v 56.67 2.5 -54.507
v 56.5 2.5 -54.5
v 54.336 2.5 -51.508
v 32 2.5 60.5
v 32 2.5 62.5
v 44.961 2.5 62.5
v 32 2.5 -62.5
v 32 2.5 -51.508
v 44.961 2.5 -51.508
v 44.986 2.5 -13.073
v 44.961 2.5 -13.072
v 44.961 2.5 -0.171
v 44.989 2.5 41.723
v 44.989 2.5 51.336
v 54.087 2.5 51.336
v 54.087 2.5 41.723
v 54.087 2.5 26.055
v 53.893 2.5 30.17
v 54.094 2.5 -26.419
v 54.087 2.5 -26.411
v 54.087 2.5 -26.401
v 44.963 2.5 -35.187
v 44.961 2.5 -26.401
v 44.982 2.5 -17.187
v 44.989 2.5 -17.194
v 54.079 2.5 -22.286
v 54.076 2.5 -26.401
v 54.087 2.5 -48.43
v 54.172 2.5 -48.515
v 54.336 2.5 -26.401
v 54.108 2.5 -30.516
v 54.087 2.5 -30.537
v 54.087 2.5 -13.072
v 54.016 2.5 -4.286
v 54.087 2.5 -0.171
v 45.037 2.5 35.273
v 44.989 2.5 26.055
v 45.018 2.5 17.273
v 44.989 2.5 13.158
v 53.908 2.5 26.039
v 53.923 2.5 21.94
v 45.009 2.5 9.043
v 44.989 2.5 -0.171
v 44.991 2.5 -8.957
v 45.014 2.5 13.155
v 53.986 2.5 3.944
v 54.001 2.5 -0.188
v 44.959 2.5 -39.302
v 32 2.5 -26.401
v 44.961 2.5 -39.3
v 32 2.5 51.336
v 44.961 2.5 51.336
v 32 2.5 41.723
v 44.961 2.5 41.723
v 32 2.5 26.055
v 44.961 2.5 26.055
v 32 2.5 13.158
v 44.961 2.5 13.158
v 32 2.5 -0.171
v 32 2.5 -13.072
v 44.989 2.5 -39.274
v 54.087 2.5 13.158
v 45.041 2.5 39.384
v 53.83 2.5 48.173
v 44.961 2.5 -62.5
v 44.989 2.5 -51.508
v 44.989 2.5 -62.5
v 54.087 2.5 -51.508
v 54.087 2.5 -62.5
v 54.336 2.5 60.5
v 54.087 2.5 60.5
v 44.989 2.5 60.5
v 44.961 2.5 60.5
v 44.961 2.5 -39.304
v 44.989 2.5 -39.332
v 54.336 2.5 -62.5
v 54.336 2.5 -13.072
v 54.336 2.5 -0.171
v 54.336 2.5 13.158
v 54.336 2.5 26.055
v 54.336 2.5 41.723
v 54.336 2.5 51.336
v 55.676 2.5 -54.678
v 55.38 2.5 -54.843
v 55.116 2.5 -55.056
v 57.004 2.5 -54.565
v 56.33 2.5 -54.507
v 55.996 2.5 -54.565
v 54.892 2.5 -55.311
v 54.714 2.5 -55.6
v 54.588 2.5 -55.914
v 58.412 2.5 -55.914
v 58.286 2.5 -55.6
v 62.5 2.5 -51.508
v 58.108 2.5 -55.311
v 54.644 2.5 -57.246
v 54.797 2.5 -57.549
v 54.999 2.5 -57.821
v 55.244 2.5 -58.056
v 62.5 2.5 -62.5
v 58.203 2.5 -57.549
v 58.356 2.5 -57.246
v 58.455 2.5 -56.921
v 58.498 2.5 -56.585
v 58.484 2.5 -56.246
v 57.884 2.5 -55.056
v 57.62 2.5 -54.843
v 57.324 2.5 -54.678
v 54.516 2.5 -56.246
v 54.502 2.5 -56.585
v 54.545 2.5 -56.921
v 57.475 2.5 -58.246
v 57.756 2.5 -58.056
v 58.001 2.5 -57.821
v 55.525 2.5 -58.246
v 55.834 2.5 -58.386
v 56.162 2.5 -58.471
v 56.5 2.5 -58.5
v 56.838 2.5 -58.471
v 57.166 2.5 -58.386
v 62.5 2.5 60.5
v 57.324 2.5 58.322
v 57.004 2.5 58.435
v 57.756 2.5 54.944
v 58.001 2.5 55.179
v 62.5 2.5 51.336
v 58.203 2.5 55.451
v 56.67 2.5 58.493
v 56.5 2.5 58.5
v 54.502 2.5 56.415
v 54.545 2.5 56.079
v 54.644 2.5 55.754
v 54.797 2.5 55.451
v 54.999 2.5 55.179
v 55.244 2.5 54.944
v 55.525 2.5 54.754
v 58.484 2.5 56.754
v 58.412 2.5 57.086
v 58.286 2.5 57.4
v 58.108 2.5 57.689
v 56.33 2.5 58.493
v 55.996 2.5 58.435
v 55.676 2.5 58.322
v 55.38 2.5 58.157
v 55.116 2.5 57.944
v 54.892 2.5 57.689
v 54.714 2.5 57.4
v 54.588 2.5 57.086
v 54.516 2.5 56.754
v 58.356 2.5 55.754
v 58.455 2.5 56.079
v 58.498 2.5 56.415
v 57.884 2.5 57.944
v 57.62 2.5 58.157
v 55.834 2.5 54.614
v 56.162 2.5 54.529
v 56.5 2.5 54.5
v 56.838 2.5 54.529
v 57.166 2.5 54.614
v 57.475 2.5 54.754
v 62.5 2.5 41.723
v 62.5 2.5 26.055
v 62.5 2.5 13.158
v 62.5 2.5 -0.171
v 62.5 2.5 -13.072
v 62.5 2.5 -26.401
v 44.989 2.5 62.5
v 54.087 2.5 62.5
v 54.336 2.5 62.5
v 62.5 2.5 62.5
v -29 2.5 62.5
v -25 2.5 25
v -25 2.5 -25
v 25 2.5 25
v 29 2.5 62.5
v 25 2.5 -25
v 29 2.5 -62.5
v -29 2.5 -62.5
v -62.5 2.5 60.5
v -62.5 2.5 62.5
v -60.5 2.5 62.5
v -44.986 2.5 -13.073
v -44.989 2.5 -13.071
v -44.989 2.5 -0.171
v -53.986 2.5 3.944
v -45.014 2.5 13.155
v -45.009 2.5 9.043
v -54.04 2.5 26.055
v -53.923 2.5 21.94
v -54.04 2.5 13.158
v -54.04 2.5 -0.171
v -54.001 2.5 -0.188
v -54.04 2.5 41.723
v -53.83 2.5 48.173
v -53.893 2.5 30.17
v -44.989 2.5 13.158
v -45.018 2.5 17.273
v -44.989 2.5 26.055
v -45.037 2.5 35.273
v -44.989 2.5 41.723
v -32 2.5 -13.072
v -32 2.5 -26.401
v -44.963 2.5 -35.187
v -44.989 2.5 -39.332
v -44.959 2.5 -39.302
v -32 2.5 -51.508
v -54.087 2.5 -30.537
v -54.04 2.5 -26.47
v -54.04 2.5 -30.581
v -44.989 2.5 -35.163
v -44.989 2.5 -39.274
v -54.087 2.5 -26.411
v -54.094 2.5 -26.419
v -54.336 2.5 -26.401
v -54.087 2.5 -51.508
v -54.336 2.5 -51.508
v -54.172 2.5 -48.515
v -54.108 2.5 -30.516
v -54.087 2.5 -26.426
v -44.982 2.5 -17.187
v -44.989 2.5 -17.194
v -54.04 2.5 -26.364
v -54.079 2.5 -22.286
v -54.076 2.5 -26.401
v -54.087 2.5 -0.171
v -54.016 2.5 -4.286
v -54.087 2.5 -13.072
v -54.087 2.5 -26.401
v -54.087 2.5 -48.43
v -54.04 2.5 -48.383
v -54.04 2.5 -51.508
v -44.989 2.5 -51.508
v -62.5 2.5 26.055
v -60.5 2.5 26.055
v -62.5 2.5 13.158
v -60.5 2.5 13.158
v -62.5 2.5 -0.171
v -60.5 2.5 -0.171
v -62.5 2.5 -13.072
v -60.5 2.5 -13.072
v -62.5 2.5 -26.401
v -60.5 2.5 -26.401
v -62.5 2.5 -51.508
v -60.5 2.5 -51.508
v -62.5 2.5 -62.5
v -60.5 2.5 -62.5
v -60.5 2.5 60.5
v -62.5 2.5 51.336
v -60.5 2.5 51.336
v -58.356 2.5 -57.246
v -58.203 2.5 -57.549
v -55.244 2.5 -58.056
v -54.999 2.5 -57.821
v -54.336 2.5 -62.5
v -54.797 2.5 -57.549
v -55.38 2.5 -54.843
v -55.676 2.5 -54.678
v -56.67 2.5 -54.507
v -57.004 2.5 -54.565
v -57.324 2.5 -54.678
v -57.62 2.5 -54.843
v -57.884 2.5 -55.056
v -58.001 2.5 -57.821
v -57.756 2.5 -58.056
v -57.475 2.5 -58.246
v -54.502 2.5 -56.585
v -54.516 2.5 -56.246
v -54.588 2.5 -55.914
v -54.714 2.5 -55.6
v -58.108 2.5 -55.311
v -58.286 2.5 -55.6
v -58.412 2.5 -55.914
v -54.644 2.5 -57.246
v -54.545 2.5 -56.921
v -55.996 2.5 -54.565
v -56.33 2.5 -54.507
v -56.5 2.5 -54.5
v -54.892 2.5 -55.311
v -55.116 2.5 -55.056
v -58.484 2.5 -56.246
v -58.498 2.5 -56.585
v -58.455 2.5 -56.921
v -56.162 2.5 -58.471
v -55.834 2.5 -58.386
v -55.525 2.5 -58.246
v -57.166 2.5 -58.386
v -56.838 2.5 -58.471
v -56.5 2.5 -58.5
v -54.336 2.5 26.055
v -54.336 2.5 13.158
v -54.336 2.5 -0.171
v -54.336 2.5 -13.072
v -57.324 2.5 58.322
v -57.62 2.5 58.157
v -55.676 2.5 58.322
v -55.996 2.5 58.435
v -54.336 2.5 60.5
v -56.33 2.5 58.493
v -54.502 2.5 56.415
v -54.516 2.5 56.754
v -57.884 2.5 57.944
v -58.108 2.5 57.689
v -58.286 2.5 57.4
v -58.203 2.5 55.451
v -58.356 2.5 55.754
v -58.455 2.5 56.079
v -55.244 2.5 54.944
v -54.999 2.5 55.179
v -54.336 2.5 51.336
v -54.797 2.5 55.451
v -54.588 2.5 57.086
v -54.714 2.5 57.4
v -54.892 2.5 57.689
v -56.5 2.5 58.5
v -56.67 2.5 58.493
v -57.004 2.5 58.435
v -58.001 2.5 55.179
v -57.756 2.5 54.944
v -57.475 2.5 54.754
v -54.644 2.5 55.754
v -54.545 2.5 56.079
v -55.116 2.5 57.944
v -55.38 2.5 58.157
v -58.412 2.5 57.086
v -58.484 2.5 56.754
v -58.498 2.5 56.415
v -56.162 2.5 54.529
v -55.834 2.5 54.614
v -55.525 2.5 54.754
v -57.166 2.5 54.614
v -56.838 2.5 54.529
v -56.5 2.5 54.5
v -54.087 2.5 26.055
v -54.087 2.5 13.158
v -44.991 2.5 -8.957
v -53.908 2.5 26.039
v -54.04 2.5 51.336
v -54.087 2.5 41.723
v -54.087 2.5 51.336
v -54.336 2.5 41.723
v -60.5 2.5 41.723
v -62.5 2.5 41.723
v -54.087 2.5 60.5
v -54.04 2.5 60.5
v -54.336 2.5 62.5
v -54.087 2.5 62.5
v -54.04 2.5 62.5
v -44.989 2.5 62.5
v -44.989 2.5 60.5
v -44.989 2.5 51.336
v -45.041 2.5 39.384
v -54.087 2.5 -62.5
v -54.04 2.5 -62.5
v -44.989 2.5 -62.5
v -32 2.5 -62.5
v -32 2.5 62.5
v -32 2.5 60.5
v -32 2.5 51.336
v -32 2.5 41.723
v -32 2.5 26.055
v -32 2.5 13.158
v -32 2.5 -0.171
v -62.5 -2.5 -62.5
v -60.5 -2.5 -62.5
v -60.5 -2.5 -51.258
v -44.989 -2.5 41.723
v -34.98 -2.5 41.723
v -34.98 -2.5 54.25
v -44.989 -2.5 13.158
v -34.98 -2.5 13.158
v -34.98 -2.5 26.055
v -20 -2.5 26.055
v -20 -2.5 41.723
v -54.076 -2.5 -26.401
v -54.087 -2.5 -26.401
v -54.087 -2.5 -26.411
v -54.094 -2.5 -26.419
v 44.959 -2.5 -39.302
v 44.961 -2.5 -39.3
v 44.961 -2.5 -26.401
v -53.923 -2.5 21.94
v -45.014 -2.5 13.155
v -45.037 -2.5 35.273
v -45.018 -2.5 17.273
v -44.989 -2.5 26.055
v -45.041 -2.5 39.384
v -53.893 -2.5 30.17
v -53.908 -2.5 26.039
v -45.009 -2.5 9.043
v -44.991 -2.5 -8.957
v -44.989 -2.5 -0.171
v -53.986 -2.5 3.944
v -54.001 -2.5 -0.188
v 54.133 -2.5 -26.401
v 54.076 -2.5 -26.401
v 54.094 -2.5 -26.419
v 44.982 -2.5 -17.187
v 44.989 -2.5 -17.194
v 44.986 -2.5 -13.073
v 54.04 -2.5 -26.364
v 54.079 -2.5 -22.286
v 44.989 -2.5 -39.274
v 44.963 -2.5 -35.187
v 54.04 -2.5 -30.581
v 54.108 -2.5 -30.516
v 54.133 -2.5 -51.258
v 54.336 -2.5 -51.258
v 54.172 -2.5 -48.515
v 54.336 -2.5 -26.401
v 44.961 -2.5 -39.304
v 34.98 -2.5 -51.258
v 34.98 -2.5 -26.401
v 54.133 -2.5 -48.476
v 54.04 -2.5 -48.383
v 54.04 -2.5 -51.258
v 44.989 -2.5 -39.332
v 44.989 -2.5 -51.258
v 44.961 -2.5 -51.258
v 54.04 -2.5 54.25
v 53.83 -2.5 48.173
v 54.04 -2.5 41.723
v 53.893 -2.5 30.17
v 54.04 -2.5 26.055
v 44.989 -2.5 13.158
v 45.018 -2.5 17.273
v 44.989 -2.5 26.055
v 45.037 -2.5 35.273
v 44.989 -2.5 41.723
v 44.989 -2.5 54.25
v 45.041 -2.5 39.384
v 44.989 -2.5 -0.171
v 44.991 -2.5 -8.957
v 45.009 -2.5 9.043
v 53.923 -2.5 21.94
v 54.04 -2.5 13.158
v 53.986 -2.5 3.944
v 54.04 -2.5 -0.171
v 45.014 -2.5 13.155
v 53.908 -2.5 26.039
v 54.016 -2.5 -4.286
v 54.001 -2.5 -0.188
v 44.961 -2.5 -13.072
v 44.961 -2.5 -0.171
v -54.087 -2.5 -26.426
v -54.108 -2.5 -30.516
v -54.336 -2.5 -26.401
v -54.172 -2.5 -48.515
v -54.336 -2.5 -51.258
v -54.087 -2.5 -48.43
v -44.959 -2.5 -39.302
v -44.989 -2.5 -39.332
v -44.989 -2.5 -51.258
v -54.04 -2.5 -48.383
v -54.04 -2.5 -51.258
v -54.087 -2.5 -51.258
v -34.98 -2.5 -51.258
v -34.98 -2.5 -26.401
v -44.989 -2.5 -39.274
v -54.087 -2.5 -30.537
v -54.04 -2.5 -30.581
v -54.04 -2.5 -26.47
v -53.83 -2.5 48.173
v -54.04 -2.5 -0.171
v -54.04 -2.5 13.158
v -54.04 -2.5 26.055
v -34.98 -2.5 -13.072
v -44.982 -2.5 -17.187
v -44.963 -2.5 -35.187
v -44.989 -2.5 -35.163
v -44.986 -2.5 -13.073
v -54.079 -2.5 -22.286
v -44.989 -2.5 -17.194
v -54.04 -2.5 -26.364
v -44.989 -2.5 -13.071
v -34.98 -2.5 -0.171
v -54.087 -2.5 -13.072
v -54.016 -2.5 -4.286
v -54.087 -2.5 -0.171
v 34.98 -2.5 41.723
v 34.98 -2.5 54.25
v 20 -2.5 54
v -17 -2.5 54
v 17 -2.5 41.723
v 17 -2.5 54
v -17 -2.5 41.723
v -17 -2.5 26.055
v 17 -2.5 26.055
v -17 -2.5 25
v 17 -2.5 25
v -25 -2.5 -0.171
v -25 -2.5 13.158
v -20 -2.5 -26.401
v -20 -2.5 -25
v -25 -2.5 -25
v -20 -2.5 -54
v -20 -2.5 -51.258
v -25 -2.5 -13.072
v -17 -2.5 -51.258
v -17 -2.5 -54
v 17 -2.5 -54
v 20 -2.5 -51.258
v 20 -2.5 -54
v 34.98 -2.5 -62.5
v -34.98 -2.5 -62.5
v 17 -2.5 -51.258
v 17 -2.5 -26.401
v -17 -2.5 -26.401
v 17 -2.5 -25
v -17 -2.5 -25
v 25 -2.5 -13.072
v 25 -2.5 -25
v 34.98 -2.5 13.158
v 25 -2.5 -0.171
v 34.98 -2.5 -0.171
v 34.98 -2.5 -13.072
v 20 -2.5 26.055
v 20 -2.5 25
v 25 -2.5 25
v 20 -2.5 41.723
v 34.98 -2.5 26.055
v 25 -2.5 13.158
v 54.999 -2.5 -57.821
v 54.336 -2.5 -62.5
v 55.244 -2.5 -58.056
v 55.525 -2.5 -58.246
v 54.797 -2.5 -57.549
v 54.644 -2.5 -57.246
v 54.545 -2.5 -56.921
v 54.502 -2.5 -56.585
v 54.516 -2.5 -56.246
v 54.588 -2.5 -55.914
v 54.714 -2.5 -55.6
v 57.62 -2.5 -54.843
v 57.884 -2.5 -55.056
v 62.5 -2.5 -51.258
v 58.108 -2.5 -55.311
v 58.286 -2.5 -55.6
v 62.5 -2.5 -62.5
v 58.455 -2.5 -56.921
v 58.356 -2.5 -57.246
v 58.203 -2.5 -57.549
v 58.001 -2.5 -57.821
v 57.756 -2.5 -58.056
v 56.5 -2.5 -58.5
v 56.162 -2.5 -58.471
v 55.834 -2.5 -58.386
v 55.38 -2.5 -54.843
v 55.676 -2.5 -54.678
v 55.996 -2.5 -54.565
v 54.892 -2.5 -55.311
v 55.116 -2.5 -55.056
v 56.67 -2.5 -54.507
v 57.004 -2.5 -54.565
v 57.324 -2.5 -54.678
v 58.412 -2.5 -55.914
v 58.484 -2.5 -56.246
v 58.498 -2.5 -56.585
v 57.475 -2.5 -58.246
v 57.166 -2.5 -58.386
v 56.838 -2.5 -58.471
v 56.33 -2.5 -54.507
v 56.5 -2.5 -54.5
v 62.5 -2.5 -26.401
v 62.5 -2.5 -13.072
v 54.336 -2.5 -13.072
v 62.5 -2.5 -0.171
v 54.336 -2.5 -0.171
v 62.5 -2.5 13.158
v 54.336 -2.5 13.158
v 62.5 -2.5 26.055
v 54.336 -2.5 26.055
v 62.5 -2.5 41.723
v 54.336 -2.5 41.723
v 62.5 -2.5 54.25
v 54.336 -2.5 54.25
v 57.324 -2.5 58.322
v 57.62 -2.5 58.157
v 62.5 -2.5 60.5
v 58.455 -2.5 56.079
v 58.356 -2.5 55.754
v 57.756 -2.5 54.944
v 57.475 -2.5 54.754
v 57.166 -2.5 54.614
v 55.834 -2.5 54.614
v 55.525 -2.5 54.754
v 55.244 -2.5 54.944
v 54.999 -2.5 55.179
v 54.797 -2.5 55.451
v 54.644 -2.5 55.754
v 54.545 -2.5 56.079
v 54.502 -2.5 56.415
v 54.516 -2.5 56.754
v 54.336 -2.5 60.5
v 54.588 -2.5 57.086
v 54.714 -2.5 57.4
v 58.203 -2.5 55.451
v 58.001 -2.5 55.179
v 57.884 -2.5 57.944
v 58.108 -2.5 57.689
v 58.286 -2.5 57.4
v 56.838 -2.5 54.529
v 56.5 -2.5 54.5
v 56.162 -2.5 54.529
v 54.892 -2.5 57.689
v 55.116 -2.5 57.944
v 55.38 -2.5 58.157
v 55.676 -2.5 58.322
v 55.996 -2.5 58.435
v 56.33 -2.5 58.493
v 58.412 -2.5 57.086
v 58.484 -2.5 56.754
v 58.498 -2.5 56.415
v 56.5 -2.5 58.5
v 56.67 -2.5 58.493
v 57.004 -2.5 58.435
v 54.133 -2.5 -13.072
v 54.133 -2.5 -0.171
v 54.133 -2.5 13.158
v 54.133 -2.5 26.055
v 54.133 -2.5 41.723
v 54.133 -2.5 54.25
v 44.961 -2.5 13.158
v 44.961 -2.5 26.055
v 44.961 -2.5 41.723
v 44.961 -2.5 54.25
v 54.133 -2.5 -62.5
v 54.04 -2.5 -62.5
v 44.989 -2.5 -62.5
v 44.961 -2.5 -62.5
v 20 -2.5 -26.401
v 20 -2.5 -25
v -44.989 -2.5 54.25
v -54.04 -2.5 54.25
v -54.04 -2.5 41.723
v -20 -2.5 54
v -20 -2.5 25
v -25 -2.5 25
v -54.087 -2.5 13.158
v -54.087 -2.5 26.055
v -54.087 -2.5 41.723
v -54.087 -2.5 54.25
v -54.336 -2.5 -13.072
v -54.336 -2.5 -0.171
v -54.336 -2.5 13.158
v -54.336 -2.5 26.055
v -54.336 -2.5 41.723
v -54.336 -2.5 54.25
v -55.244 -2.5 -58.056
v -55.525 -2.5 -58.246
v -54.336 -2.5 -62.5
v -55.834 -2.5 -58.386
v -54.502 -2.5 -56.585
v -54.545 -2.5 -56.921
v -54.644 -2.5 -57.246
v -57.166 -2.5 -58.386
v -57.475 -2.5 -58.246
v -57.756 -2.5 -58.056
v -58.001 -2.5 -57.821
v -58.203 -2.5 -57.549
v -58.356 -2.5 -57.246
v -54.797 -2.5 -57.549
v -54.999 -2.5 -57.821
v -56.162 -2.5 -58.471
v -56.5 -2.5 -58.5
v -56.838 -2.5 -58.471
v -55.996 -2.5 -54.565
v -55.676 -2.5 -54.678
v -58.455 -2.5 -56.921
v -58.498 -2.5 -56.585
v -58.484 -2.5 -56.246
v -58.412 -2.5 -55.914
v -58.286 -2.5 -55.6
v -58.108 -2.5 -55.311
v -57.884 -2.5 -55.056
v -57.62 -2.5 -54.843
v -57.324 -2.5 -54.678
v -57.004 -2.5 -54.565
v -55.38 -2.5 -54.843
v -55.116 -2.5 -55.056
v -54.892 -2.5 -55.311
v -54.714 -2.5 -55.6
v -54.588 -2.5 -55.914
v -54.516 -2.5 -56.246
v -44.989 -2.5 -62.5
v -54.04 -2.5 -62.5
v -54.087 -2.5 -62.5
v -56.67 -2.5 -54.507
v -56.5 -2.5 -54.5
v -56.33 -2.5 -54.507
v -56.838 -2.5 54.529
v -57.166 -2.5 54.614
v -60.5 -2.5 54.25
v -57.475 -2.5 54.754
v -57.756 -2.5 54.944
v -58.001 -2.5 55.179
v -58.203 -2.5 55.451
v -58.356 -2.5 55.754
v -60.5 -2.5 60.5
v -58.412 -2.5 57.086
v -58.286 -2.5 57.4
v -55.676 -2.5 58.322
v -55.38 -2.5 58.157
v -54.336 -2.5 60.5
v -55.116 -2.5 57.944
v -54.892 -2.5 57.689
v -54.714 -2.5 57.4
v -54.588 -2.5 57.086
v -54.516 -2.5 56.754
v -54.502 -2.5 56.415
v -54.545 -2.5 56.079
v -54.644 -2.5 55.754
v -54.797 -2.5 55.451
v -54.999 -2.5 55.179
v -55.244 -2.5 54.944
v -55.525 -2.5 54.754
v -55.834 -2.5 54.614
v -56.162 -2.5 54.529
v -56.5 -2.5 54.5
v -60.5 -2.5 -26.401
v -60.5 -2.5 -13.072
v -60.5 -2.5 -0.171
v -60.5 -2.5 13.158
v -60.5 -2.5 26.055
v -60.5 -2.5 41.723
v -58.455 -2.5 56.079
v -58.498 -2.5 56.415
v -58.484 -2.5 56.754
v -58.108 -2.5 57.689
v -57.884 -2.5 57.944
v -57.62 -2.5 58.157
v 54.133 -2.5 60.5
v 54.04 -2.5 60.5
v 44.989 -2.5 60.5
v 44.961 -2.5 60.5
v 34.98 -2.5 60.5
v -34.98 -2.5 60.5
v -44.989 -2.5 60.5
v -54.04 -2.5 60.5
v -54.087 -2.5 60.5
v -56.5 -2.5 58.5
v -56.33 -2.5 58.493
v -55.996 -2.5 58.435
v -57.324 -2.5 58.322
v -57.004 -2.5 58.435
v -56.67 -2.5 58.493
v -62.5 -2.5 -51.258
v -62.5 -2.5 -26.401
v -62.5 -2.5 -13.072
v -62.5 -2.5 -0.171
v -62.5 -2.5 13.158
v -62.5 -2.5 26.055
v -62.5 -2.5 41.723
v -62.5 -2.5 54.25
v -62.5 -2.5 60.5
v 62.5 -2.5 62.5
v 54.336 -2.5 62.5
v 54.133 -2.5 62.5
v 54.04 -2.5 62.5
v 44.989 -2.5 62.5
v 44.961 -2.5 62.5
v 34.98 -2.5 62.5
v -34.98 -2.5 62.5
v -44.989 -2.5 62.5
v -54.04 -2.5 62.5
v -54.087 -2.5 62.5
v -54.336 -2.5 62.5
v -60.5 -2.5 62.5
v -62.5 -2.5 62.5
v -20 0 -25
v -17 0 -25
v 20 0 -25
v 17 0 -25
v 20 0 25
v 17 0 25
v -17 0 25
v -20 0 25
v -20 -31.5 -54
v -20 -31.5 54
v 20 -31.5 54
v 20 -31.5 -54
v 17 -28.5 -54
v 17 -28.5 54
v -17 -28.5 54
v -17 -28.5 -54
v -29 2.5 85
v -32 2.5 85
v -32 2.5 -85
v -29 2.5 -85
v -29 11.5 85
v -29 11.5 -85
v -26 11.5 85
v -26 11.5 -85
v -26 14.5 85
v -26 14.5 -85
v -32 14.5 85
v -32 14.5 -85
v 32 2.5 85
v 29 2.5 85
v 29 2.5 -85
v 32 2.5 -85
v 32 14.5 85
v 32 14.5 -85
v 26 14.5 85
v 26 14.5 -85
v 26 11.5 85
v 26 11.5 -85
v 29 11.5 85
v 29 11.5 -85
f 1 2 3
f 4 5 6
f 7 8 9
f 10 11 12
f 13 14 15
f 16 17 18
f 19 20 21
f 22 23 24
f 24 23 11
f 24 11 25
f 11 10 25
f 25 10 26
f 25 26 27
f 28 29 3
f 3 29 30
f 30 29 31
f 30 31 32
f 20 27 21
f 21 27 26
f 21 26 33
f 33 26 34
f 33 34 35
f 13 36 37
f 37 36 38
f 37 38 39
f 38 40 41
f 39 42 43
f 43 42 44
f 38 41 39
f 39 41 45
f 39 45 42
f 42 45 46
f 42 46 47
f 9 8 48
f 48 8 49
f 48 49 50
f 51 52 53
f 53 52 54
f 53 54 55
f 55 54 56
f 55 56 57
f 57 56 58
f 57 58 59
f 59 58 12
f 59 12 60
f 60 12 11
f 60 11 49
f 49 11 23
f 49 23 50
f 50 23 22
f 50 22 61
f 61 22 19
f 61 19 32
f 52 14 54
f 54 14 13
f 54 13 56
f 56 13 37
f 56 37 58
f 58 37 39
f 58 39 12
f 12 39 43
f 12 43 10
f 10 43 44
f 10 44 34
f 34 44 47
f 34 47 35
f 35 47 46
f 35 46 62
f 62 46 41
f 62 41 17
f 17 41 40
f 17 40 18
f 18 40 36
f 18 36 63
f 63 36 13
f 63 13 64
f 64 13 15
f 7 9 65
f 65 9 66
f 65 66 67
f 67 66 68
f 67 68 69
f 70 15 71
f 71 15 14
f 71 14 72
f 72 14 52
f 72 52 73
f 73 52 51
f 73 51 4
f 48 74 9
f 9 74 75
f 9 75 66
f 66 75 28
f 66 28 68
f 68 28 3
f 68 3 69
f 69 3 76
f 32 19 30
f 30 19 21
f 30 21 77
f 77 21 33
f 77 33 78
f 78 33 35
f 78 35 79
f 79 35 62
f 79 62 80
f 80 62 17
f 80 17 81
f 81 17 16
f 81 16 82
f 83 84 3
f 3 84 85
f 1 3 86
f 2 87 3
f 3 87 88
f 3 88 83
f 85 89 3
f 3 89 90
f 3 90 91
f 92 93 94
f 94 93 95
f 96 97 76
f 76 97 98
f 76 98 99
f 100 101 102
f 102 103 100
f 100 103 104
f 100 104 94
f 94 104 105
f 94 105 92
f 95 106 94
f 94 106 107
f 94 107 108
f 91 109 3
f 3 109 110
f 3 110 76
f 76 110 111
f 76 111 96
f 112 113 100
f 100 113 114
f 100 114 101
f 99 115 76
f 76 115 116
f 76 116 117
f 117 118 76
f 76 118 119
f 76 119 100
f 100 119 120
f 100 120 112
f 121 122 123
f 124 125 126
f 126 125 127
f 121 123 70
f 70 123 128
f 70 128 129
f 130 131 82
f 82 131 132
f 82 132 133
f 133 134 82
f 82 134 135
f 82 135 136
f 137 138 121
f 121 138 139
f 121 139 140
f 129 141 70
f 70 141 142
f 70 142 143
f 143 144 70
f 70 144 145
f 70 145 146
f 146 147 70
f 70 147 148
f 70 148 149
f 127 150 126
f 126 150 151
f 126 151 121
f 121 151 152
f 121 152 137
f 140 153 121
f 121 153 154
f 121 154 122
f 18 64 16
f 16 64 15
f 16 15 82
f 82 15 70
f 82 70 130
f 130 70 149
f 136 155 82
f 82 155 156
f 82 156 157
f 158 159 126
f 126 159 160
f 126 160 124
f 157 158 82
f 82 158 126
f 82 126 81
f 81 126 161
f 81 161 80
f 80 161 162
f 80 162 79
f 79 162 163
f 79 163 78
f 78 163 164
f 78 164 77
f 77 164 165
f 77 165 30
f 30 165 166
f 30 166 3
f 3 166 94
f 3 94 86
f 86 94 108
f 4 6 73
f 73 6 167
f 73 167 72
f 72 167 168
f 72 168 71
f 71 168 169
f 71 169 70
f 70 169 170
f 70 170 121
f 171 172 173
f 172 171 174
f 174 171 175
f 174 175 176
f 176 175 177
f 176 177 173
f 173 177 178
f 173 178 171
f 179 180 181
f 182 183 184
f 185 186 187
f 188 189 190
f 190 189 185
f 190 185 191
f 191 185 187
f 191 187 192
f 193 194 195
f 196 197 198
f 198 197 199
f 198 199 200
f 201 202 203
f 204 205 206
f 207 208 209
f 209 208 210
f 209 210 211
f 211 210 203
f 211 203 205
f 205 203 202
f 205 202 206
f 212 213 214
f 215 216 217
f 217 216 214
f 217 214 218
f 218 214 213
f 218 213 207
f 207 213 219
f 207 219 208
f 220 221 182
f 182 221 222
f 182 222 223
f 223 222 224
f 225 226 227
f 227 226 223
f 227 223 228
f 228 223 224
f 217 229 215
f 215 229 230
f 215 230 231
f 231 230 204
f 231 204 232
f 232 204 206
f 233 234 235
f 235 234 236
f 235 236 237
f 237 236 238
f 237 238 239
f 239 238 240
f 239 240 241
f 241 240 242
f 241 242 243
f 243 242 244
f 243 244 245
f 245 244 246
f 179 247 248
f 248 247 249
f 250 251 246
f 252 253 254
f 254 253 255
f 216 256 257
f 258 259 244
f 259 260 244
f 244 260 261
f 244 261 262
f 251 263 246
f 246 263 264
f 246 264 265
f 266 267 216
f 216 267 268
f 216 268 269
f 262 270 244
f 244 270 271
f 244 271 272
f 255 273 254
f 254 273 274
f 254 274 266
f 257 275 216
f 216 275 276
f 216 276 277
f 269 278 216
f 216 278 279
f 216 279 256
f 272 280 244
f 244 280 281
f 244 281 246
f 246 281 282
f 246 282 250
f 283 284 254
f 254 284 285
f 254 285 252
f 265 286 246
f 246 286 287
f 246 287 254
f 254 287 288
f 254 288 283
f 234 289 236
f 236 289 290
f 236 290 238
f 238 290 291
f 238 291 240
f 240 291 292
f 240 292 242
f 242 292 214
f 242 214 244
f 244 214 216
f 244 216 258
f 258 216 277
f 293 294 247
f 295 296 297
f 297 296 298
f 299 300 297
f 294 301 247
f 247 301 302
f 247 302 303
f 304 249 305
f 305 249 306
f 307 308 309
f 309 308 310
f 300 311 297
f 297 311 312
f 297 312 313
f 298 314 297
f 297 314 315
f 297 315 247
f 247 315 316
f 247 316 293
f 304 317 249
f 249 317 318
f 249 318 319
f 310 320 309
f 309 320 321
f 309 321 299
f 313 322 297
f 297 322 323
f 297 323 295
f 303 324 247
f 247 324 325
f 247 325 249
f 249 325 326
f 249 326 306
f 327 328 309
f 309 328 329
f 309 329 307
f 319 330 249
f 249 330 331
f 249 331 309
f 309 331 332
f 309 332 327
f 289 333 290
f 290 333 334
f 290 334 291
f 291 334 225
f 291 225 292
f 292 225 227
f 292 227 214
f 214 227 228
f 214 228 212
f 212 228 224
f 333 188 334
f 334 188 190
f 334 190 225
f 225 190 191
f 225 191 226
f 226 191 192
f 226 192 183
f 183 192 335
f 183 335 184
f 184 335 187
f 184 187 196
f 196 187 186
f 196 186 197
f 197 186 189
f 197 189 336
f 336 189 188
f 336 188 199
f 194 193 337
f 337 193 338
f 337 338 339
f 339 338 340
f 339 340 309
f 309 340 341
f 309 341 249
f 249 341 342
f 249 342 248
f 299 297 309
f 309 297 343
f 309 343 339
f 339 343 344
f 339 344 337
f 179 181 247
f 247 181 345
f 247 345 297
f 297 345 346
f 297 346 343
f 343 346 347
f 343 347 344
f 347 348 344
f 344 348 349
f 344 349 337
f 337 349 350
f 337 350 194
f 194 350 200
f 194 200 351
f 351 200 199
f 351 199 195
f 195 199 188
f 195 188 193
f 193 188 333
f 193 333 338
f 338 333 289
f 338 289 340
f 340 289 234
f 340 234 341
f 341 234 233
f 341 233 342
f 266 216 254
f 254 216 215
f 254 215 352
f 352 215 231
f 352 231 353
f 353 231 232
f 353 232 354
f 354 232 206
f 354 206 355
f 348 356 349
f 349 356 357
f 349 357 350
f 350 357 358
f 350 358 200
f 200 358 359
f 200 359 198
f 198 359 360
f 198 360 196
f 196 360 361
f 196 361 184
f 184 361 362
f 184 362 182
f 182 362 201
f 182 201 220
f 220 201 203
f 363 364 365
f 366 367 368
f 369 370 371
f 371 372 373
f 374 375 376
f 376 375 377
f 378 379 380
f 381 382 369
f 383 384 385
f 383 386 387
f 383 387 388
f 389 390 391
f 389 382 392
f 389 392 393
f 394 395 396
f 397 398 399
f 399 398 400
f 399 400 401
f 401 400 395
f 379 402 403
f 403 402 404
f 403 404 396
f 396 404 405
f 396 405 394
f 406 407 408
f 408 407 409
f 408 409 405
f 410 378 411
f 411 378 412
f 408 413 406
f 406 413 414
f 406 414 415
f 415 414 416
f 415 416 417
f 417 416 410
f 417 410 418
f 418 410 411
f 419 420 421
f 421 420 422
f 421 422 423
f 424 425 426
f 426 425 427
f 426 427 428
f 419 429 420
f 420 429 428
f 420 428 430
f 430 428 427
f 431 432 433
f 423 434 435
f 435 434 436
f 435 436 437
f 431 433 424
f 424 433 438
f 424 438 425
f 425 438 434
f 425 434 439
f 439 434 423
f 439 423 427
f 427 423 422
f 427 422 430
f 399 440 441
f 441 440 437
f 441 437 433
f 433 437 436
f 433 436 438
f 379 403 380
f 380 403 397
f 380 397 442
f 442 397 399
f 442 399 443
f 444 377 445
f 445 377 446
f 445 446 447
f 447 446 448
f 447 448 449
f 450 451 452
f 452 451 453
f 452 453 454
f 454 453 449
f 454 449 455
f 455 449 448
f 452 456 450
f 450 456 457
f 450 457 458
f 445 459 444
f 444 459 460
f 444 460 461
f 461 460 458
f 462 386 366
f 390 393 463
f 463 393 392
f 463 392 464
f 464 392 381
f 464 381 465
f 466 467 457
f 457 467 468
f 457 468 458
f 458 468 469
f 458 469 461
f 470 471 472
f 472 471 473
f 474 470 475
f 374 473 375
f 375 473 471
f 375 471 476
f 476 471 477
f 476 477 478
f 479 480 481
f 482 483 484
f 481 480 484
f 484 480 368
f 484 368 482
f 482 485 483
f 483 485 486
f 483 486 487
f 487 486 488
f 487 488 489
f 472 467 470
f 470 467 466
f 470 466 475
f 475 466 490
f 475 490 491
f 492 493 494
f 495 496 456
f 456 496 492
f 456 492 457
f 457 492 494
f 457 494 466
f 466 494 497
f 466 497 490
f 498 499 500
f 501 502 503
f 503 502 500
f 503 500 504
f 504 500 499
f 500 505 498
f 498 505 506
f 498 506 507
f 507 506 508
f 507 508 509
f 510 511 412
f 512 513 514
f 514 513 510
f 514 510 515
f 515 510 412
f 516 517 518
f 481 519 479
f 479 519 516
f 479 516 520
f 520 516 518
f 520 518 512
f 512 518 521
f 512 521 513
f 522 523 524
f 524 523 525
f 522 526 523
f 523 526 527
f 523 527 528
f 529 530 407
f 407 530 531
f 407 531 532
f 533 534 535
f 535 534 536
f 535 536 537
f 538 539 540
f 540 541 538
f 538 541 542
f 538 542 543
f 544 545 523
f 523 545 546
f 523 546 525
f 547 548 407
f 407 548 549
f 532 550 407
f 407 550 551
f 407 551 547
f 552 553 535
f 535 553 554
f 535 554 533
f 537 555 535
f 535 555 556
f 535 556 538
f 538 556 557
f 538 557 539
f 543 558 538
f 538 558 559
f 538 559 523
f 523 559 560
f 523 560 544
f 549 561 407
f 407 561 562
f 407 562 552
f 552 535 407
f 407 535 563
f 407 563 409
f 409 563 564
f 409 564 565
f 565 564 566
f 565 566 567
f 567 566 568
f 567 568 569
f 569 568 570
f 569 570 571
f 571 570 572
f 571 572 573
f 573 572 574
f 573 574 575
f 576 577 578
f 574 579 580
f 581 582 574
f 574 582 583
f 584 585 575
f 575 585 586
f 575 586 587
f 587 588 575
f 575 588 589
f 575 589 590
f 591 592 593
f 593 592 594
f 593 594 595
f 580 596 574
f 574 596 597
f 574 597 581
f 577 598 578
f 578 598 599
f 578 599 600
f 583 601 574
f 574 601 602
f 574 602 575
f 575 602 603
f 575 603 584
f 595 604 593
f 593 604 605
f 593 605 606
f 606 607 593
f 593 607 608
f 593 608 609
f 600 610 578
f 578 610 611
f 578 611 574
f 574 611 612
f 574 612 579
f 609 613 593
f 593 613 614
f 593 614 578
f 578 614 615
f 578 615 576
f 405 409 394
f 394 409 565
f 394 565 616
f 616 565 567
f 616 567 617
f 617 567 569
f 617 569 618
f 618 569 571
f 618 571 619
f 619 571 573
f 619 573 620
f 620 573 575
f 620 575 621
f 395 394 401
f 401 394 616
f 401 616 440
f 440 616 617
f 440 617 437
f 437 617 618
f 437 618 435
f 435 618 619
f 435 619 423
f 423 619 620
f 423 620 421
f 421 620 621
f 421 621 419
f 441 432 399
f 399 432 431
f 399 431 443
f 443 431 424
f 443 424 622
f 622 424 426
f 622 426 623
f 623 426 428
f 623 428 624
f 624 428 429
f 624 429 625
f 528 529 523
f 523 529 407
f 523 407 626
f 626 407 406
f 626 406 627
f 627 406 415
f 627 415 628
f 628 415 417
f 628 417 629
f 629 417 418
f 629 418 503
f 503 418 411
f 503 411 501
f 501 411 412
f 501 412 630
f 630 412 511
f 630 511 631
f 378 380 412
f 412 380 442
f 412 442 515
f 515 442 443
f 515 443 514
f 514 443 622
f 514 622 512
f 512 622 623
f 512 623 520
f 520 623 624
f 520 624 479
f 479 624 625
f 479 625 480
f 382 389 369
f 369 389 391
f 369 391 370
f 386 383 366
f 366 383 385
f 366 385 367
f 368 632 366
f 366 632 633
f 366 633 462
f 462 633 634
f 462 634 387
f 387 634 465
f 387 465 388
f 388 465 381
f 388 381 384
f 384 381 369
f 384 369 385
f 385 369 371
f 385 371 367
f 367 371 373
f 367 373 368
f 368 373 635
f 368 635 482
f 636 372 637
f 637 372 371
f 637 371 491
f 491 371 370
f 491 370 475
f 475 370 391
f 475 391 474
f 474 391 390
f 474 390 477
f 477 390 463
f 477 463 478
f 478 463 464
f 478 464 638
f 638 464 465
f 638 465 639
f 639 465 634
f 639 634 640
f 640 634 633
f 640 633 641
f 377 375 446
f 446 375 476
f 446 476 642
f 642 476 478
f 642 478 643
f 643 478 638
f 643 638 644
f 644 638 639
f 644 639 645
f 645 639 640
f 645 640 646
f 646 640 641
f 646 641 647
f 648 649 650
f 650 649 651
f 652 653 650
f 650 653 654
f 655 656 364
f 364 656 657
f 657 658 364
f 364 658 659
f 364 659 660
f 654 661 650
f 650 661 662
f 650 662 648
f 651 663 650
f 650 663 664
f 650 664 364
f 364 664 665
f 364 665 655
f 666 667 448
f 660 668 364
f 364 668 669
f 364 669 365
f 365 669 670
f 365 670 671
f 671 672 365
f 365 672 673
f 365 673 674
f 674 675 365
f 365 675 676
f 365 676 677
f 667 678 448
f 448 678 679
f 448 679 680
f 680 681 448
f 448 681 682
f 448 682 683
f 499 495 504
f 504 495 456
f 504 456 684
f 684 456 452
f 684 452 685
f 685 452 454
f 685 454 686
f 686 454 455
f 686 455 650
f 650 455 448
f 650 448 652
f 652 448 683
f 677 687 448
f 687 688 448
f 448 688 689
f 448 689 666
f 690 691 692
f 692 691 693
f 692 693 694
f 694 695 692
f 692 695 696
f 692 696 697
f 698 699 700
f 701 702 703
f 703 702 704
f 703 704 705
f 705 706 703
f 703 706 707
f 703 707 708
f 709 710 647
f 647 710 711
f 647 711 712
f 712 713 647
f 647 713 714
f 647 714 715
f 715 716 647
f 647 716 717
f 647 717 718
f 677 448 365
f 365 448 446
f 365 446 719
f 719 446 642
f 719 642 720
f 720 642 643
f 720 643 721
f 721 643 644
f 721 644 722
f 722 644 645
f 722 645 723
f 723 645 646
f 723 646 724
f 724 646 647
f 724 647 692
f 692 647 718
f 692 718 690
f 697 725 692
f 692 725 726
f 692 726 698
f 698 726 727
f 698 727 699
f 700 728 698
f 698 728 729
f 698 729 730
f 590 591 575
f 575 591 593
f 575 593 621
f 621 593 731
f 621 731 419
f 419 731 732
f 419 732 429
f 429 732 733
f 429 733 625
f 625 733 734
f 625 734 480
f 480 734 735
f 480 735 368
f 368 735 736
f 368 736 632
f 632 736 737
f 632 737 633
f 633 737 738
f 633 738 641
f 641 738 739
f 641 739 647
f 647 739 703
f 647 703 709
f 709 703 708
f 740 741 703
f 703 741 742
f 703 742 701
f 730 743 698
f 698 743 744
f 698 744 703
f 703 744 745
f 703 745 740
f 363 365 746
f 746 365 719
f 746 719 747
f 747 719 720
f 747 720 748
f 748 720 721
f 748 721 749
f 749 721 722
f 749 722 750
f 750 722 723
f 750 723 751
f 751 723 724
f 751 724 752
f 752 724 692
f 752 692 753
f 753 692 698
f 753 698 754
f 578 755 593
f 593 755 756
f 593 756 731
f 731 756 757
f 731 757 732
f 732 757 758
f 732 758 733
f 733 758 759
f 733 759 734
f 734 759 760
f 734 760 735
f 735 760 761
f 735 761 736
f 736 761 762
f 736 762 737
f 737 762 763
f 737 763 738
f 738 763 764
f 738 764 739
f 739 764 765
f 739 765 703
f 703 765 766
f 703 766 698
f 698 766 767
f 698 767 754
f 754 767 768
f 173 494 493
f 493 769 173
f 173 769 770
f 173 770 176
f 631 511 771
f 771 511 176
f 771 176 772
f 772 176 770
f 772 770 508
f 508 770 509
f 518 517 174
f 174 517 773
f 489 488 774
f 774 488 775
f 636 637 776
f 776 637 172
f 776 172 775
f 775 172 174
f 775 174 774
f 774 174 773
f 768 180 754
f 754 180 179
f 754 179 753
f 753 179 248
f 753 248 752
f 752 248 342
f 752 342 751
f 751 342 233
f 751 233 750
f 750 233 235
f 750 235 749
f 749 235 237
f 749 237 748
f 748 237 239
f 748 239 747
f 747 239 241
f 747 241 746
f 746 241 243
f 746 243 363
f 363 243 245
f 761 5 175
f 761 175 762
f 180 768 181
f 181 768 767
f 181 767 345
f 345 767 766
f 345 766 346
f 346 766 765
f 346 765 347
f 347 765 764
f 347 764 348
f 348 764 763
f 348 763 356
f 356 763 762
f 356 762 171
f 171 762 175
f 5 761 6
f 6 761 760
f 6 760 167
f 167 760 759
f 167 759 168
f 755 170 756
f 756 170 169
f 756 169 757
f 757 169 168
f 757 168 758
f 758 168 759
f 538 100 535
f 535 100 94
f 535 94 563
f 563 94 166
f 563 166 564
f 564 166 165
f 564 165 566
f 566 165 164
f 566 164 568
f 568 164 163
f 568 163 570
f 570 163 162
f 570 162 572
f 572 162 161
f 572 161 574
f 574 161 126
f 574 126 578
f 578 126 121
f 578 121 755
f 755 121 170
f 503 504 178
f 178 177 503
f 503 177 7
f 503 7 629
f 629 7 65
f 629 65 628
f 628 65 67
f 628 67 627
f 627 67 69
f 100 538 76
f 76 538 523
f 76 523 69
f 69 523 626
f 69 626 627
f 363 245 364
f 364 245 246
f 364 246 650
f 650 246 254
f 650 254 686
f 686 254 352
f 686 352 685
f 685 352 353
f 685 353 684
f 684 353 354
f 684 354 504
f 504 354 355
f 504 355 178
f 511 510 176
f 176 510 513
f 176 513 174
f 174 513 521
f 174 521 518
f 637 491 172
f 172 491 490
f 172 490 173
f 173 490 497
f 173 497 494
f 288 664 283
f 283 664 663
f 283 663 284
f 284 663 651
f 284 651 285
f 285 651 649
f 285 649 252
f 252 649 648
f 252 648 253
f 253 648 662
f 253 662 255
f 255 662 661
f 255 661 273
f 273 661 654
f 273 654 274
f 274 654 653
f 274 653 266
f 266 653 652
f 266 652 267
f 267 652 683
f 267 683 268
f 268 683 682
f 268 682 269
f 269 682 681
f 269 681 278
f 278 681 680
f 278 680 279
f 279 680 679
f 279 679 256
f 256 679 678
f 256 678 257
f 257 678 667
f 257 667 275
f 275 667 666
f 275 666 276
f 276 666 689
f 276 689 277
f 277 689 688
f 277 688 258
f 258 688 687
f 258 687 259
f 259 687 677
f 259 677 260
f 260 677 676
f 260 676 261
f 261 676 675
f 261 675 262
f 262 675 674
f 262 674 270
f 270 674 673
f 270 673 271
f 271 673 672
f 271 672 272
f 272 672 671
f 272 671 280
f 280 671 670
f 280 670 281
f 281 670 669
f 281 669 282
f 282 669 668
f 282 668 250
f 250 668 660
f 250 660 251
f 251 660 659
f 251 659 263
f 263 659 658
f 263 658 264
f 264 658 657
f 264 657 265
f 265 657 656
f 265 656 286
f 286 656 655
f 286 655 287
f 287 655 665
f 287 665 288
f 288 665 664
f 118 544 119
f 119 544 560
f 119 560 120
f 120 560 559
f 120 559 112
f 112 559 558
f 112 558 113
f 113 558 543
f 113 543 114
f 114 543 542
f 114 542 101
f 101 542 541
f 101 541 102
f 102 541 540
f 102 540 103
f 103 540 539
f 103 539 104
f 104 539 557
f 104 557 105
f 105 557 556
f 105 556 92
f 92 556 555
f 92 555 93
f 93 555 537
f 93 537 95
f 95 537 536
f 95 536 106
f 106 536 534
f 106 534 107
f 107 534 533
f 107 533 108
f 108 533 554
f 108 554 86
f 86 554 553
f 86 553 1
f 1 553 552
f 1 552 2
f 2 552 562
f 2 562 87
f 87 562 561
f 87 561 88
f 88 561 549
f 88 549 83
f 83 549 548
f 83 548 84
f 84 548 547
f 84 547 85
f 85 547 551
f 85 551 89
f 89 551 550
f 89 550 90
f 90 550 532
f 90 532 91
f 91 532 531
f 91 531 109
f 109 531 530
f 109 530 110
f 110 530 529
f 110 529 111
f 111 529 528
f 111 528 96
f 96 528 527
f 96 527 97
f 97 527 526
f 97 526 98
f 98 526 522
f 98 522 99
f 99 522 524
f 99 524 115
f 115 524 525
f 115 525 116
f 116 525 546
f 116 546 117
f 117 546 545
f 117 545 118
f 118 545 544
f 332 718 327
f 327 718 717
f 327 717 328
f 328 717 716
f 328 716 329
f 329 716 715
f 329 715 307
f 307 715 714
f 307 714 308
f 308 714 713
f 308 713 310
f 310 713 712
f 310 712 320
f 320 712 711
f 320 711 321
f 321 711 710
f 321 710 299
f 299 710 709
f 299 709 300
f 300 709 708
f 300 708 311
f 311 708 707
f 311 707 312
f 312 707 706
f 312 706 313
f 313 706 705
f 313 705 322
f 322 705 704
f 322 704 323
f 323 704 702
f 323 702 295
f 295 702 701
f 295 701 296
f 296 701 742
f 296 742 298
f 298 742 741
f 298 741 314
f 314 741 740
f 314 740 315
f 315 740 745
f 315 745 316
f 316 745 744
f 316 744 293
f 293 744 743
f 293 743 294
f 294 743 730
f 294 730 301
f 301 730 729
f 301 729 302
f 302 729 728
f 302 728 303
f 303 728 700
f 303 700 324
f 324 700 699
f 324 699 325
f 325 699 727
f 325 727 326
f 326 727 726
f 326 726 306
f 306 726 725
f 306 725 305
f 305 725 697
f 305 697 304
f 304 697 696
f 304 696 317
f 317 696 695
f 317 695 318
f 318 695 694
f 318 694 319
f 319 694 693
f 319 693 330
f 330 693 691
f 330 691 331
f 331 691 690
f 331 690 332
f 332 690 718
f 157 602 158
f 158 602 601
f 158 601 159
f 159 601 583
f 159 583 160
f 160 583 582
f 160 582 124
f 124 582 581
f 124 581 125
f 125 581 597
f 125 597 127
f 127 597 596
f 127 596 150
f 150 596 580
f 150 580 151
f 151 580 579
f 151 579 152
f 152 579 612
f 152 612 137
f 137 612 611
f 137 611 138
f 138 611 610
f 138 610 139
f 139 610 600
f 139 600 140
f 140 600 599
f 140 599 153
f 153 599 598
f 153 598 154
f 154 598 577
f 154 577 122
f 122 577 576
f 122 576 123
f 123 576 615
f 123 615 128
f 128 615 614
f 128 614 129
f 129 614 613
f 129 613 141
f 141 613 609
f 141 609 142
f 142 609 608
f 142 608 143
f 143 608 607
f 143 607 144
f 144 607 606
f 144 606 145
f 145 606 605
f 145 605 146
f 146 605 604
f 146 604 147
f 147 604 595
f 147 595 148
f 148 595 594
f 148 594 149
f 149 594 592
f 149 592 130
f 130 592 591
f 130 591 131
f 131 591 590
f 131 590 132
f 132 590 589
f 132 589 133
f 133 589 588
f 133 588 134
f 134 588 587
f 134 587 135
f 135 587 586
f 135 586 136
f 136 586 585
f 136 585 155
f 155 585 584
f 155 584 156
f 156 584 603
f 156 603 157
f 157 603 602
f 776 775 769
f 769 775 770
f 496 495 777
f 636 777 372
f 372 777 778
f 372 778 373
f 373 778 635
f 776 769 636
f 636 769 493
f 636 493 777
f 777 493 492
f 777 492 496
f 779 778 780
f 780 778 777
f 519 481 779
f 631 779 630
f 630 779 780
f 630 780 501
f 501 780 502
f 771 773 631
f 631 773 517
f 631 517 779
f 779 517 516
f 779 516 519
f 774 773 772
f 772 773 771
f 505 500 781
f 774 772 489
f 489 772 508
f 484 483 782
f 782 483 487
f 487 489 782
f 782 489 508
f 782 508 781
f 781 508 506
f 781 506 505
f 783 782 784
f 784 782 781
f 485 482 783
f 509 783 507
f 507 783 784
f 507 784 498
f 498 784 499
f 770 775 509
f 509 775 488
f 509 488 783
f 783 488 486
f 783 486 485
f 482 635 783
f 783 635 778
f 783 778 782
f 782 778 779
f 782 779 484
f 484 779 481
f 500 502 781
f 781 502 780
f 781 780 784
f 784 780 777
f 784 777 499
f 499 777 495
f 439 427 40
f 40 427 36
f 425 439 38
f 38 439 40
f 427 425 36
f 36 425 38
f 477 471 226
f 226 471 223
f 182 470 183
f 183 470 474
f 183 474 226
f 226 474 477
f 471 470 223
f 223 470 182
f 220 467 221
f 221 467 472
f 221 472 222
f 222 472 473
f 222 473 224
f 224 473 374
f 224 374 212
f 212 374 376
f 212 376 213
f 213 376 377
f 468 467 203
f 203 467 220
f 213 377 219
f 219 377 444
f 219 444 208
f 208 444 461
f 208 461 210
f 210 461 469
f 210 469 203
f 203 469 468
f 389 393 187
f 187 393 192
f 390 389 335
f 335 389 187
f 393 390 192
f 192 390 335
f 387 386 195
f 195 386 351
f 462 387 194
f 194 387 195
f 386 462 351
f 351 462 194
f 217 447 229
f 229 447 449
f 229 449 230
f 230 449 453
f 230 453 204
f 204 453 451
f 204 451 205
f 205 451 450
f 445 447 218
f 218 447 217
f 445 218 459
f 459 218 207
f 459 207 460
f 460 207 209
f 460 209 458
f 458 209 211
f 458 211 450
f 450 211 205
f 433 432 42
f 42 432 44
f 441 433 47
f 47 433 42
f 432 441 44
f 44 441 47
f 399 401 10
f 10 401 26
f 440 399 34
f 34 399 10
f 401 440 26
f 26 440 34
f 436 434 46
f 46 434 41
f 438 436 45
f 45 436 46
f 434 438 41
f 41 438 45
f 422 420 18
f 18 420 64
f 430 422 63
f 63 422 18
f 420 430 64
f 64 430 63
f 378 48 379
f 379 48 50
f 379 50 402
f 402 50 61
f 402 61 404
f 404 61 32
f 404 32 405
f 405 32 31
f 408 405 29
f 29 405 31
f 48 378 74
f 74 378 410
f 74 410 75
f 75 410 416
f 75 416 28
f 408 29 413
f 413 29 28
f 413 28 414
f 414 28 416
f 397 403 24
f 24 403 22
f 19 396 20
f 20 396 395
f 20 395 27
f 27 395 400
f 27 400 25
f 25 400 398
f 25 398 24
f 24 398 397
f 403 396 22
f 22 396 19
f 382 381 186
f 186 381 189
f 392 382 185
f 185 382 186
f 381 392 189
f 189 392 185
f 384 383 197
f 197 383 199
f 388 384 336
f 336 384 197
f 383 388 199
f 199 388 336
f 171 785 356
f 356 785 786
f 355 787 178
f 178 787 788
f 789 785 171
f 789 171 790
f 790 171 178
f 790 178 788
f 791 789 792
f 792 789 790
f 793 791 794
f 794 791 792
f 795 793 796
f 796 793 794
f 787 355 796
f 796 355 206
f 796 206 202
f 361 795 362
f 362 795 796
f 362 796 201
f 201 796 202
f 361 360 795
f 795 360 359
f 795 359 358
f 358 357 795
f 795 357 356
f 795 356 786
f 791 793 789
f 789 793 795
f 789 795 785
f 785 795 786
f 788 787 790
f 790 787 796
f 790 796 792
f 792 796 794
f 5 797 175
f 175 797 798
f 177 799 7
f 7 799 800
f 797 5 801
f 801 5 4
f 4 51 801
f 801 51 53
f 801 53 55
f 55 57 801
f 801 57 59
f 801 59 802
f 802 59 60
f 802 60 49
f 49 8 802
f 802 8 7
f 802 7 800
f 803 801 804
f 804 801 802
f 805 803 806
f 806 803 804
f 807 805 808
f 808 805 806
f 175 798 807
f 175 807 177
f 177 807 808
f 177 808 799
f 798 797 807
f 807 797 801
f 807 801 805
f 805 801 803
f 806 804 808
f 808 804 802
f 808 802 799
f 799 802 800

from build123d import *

# Parameters (mm, degrees)
SKETCH_2_W               = 125
SKETCH_2_H               = 125
SKETCH_2_R               = 2
SKETCH_2_W_2             = 50
SKETCH_2_H_2             = 50
EXTRUDE_1_DEPTH          = 2.5
EXTRUDE_4_DEPTH          = 54
CUT_EXTRUDE_2_DEPTH      = 95.702164706
CUT_EXTRUDE_2_DEPTH_BACK = 5
EXTRUDE_7_DEPTH          = 85


with BuildPart() as part:
    # 스케치2 → 보스-돌출1 (new, symmetric)
    with BuildSketch(Plane(origin=(0, 0, 0), x_dir=(1, 0, 0), z_dir=(0, 1, 0))):
        Rectangle(SKETCH_2_W, SKETCH_2_H)
        with Locations((-56.5, 56.5)):
            Circle(SKETCH_2_R, mode=Mode.SUBTRACT)
        with Locations((56.5, 56.5)):
            Circle(SKETCH_2_R, mode=Mode.SUBTRACT)
        with Locations((-56.5, -56.5)):
            Circle(SKETCH_2_R, mode=Mode.SUBTRACT)
        with Locations((56.5, -56.5)):
            Circle(SKETCH_2_R, mode=Mode.SUBTRACT)
        Rectangle(SKETCH_2_W_2, SKETCH_2_H_2, mode=Mode.SUBTRACT)
    extrude(amount=EXTRUDE_1_DEPTH, both=True)

    # 스케치6 → 보스-돌출4 (add, symmetric)
    with BuildSketch(Plane.XY):
        Polygon((-20, 0), (-20, -31.5), (20, -31.5), (20, 0), (17, 0), (17, -28.5), (-17, -28.5), (-17, 0), align=None)
    extrude(amount=EXTRUDE_4_DEPTH, both=True)

    # 스케치8 → 컷-돌출2 (cut, two sides: drawn at the far end of the back side and taken through both)
    with BuildSketch(Plane(origin=(0, 2.5, 0), x_dir=(1, 0, 0), z_dir=(0, 1, 0)).offset(-CUT_EXTRUDE_2_DEPTH_BACK)):
        Polygon((54.07931581, 22.285580831), (54.015526938, 4.28569386), (44.986382589, 13.073341514), align=None)
        Polygon((53.829622097, -48.172767848), (45.041121619, -39.384267369), (53.893419828, -30.170381277), align=None)
        Polygon((45.036831341, -35.272800588), (45.018048518, -17.272810388), (53.90806007, -26.039210725), align=None)
        Polygon((44.95901306, 39.30215881), (54.172270373, 48.515416123), (54.1084815, 30.515529152), align=None)
        Polygon((53.922585518, -21.940432956), (45.013752114, -13.155472476), (53.986361248, -3.944254461), align=None)
        Polygon((45.009460593, -9.042814869), (54.001004771, 0.18784173), (44.99067777, 8.957175331), align=None)
        Polygon((44.982089846, 17.187170851), (54.093962598, 26.418598199), (44.963307022, 35.187161051), align=None)
        Polygon((-53.893419828, -30.170381277), (-53.829622097, -48.172767848), (-45.041121619, -39.384267369), align=None)
        Polygon((-45.009460593, -9.042814869), (-44.99067777, 8.957175331), (-54.001004771, 0.18784173), align=None)
        Polygon((-53.986361248, -3.944254461), (-53.922585518, -21.940432956), (-45.013752114, -13.155472476), align=None)
        Polygon((-44.982089846, 17.187170851), (-44.963307022, 35.187161051), (-54.093962598, 26.418598199), align=None)
        Polygon((-54.1084815, 30.515529152), (-44.95901306, 39.30215881), (-54.172270373, 48.515416123), align=None)
        Polygon((-44.986382589, 13.073341514), (-54.07931581, 22.285580831), (-54.015526938, 4.28569386), align=None)
        Polygon((-53.90806007, -26.039210725), (-45.018048518, -17.272810388), (-45.036831341, -35.272800588), align=None)
    extrude(amount=CUT_EXTRUDE_2_DEPTH + CUT_EXTRUDE_2_DEPTH_BACK, mode=Mode.SUBTRACT)

    # 스케치11 → 보스-돌출7 (add, symmetric)
    with BuildSketch(Plane.XY):
        Polygon((-32, 2.5), (-32, 14.5), (-26, 14.5), (-26, 11.5), (-29, 11.5), (-29, 2.5), align=None)
        Polygon((32, 2.5), (29, 2.5), (29, 11.5), (26, 11.5), (26, 14.5), (32, 14.5), align=None)
    extrude(amount=EXTRUDE_7_DEPTH, both=True)


solid = part.part
